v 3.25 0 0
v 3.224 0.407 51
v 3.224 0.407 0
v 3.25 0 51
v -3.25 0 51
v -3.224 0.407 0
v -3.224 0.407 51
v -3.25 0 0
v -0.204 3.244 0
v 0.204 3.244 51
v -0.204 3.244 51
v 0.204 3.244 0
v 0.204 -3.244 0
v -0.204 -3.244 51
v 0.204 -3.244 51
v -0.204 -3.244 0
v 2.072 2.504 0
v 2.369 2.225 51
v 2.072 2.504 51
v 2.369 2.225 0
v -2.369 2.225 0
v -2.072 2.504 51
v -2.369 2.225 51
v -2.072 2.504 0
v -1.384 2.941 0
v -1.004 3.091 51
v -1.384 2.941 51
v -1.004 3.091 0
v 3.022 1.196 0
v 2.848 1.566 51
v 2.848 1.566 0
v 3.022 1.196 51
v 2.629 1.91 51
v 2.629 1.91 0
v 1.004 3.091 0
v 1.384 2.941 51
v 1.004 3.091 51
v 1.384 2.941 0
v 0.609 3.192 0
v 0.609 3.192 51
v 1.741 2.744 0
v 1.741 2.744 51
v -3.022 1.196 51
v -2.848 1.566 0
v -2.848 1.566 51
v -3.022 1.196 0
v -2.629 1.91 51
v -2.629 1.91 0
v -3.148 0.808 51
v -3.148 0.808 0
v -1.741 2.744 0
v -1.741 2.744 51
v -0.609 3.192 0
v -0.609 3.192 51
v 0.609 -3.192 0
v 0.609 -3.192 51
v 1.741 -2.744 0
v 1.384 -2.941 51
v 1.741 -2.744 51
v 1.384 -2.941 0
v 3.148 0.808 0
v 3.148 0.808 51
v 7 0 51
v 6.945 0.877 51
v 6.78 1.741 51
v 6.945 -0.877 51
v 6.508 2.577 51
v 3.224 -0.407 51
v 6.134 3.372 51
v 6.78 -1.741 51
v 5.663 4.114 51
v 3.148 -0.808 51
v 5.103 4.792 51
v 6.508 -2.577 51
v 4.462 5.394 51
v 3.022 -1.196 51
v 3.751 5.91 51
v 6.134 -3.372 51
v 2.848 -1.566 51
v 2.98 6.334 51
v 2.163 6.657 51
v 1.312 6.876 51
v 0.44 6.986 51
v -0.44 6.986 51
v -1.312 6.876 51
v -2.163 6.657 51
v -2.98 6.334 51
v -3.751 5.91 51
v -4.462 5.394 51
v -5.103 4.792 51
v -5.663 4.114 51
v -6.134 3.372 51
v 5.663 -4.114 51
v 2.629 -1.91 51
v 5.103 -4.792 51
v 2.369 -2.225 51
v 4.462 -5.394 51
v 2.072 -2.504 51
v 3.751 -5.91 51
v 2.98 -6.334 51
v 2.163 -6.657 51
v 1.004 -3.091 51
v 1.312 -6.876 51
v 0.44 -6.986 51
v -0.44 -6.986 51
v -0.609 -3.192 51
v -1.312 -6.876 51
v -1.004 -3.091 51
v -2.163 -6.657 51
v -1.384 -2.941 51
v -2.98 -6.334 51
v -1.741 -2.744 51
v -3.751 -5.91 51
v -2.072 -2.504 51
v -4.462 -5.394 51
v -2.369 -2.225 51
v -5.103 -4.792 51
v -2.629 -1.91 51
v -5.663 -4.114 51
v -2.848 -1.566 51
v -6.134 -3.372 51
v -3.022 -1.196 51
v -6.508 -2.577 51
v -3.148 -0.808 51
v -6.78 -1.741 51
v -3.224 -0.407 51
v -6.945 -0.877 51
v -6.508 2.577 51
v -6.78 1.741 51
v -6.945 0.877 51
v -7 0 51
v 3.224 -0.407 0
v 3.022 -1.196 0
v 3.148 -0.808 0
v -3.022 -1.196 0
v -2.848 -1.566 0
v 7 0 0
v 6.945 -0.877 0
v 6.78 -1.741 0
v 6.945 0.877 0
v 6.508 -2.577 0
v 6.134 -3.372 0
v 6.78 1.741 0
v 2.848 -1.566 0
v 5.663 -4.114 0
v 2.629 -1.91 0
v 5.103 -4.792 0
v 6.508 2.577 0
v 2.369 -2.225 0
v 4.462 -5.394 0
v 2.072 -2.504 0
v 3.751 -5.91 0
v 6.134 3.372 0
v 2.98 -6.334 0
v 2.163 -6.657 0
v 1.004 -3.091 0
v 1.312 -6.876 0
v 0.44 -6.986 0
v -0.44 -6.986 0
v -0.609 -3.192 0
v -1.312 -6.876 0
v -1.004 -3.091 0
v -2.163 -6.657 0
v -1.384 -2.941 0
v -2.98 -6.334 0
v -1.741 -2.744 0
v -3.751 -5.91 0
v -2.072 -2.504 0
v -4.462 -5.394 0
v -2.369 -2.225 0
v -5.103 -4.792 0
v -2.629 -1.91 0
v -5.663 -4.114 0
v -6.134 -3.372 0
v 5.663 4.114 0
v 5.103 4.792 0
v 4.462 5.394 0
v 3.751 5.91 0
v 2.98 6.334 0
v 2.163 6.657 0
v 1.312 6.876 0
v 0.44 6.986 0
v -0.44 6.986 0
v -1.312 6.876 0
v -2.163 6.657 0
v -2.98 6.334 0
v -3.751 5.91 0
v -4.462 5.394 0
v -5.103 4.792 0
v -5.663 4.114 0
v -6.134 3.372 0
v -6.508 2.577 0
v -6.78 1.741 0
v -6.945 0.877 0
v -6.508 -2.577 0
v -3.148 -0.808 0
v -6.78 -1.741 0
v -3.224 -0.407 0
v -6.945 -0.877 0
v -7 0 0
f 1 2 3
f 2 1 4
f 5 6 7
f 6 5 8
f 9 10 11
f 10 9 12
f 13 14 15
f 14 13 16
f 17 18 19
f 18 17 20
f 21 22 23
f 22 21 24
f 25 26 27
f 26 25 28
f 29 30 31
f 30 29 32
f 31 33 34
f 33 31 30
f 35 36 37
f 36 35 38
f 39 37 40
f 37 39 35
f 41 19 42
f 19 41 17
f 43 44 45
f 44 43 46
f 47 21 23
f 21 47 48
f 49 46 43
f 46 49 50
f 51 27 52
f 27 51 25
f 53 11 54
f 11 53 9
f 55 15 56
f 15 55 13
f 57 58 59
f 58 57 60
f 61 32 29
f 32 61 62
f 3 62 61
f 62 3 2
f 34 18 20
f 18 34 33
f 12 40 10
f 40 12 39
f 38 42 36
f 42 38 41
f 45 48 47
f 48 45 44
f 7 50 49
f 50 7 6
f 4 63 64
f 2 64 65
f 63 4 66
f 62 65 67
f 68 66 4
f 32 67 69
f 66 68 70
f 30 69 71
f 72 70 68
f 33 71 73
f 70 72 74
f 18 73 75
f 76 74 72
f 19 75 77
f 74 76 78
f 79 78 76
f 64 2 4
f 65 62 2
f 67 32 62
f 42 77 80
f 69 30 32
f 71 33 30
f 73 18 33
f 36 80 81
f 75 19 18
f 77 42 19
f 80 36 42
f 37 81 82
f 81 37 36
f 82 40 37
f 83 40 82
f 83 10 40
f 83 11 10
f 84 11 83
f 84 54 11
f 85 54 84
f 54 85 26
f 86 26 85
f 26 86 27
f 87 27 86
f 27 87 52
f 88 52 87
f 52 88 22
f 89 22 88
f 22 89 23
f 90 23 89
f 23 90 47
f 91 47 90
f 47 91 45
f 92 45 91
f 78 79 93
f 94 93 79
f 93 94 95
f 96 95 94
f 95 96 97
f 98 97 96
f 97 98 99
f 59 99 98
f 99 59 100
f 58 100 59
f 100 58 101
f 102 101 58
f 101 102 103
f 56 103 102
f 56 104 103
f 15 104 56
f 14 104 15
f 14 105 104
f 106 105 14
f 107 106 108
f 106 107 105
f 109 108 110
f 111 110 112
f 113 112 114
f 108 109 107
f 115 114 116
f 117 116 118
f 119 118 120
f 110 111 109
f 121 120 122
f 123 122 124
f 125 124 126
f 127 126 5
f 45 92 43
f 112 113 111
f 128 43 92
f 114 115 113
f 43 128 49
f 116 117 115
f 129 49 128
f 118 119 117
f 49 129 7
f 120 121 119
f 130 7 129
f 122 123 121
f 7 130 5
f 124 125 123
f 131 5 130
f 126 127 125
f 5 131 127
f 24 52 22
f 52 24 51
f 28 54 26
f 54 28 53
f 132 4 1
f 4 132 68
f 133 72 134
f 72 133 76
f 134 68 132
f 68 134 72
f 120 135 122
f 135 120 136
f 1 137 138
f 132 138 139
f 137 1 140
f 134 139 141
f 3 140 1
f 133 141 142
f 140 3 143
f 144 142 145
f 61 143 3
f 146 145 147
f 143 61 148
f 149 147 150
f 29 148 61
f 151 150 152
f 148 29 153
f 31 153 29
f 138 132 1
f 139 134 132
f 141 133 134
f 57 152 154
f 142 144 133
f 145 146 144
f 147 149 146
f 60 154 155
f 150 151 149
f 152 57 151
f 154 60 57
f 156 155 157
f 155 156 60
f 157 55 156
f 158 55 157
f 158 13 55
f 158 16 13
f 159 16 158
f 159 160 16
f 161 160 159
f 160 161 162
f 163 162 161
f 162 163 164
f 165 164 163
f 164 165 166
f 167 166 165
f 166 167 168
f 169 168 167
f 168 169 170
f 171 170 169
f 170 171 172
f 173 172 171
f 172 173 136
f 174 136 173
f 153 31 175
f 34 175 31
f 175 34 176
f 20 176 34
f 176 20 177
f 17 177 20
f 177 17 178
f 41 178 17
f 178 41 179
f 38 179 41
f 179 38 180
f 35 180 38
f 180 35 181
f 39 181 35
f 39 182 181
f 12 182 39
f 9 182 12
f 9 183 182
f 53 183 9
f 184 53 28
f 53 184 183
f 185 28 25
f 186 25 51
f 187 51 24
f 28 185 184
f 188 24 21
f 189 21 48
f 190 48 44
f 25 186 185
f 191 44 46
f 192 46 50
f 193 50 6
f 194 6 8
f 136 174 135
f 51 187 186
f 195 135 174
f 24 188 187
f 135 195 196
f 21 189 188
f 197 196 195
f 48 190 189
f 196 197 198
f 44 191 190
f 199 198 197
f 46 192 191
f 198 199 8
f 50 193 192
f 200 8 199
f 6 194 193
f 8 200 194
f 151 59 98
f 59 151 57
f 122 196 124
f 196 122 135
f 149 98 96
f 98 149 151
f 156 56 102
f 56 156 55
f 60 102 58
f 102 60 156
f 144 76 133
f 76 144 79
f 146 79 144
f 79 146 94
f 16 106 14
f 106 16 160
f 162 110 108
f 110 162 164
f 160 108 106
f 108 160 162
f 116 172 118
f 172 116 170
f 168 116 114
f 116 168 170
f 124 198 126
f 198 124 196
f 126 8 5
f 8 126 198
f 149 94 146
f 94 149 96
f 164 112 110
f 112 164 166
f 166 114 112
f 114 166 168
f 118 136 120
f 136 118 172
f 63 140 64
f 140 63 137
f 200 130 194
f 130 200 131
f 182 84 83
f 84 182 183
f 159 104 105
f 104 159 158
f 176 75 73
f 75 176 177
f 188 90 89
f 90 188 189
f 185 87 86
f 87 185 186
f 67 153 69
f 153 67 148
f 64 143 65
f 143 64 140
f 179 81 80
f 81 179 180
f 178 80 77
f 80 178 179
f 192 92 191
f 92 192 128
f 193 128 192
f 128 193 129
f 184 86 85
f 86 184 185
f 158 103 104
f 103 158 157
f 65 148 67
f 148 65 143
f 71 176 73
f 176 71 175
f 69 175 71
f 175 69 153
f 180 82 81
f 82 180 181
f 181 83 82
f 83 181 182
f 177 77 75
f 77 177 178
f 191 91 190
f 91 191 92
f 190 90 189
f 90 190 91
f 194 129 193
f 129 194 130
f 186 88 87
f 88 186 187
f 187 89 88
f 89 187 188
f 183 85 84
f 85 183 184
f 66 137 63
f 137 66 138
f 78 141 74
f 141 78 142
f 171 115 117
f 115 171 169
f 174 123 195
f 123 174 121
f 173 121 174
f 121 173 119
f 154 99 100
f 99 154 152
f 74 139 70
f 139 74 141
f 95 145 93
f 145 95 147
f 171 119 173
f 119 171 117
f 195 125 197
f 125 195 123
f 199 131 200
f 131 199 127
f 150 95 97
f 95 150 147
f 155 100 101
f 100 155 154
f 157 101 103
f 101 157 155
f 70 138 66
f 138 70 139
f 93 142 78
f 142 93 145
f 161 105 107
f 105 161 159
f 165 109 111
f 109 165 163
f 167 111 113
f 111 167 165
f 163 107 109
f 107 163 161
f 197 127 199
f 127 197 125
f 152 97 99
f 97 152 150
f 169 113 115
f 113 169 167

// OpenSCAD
$fn = 50;


difference() {
	union() {
		cylinder(h = 51, r = 7.0000000000);
	}
	union() {
		cylinder(h = 51, r = 3.2500000000);
		cylinder(h = 51, r = 1.8000000000);
		cylinder(h = 51, r = 1.8000000000);
		cylinder(h = 51, r = 1.8000000000);
	}
}
